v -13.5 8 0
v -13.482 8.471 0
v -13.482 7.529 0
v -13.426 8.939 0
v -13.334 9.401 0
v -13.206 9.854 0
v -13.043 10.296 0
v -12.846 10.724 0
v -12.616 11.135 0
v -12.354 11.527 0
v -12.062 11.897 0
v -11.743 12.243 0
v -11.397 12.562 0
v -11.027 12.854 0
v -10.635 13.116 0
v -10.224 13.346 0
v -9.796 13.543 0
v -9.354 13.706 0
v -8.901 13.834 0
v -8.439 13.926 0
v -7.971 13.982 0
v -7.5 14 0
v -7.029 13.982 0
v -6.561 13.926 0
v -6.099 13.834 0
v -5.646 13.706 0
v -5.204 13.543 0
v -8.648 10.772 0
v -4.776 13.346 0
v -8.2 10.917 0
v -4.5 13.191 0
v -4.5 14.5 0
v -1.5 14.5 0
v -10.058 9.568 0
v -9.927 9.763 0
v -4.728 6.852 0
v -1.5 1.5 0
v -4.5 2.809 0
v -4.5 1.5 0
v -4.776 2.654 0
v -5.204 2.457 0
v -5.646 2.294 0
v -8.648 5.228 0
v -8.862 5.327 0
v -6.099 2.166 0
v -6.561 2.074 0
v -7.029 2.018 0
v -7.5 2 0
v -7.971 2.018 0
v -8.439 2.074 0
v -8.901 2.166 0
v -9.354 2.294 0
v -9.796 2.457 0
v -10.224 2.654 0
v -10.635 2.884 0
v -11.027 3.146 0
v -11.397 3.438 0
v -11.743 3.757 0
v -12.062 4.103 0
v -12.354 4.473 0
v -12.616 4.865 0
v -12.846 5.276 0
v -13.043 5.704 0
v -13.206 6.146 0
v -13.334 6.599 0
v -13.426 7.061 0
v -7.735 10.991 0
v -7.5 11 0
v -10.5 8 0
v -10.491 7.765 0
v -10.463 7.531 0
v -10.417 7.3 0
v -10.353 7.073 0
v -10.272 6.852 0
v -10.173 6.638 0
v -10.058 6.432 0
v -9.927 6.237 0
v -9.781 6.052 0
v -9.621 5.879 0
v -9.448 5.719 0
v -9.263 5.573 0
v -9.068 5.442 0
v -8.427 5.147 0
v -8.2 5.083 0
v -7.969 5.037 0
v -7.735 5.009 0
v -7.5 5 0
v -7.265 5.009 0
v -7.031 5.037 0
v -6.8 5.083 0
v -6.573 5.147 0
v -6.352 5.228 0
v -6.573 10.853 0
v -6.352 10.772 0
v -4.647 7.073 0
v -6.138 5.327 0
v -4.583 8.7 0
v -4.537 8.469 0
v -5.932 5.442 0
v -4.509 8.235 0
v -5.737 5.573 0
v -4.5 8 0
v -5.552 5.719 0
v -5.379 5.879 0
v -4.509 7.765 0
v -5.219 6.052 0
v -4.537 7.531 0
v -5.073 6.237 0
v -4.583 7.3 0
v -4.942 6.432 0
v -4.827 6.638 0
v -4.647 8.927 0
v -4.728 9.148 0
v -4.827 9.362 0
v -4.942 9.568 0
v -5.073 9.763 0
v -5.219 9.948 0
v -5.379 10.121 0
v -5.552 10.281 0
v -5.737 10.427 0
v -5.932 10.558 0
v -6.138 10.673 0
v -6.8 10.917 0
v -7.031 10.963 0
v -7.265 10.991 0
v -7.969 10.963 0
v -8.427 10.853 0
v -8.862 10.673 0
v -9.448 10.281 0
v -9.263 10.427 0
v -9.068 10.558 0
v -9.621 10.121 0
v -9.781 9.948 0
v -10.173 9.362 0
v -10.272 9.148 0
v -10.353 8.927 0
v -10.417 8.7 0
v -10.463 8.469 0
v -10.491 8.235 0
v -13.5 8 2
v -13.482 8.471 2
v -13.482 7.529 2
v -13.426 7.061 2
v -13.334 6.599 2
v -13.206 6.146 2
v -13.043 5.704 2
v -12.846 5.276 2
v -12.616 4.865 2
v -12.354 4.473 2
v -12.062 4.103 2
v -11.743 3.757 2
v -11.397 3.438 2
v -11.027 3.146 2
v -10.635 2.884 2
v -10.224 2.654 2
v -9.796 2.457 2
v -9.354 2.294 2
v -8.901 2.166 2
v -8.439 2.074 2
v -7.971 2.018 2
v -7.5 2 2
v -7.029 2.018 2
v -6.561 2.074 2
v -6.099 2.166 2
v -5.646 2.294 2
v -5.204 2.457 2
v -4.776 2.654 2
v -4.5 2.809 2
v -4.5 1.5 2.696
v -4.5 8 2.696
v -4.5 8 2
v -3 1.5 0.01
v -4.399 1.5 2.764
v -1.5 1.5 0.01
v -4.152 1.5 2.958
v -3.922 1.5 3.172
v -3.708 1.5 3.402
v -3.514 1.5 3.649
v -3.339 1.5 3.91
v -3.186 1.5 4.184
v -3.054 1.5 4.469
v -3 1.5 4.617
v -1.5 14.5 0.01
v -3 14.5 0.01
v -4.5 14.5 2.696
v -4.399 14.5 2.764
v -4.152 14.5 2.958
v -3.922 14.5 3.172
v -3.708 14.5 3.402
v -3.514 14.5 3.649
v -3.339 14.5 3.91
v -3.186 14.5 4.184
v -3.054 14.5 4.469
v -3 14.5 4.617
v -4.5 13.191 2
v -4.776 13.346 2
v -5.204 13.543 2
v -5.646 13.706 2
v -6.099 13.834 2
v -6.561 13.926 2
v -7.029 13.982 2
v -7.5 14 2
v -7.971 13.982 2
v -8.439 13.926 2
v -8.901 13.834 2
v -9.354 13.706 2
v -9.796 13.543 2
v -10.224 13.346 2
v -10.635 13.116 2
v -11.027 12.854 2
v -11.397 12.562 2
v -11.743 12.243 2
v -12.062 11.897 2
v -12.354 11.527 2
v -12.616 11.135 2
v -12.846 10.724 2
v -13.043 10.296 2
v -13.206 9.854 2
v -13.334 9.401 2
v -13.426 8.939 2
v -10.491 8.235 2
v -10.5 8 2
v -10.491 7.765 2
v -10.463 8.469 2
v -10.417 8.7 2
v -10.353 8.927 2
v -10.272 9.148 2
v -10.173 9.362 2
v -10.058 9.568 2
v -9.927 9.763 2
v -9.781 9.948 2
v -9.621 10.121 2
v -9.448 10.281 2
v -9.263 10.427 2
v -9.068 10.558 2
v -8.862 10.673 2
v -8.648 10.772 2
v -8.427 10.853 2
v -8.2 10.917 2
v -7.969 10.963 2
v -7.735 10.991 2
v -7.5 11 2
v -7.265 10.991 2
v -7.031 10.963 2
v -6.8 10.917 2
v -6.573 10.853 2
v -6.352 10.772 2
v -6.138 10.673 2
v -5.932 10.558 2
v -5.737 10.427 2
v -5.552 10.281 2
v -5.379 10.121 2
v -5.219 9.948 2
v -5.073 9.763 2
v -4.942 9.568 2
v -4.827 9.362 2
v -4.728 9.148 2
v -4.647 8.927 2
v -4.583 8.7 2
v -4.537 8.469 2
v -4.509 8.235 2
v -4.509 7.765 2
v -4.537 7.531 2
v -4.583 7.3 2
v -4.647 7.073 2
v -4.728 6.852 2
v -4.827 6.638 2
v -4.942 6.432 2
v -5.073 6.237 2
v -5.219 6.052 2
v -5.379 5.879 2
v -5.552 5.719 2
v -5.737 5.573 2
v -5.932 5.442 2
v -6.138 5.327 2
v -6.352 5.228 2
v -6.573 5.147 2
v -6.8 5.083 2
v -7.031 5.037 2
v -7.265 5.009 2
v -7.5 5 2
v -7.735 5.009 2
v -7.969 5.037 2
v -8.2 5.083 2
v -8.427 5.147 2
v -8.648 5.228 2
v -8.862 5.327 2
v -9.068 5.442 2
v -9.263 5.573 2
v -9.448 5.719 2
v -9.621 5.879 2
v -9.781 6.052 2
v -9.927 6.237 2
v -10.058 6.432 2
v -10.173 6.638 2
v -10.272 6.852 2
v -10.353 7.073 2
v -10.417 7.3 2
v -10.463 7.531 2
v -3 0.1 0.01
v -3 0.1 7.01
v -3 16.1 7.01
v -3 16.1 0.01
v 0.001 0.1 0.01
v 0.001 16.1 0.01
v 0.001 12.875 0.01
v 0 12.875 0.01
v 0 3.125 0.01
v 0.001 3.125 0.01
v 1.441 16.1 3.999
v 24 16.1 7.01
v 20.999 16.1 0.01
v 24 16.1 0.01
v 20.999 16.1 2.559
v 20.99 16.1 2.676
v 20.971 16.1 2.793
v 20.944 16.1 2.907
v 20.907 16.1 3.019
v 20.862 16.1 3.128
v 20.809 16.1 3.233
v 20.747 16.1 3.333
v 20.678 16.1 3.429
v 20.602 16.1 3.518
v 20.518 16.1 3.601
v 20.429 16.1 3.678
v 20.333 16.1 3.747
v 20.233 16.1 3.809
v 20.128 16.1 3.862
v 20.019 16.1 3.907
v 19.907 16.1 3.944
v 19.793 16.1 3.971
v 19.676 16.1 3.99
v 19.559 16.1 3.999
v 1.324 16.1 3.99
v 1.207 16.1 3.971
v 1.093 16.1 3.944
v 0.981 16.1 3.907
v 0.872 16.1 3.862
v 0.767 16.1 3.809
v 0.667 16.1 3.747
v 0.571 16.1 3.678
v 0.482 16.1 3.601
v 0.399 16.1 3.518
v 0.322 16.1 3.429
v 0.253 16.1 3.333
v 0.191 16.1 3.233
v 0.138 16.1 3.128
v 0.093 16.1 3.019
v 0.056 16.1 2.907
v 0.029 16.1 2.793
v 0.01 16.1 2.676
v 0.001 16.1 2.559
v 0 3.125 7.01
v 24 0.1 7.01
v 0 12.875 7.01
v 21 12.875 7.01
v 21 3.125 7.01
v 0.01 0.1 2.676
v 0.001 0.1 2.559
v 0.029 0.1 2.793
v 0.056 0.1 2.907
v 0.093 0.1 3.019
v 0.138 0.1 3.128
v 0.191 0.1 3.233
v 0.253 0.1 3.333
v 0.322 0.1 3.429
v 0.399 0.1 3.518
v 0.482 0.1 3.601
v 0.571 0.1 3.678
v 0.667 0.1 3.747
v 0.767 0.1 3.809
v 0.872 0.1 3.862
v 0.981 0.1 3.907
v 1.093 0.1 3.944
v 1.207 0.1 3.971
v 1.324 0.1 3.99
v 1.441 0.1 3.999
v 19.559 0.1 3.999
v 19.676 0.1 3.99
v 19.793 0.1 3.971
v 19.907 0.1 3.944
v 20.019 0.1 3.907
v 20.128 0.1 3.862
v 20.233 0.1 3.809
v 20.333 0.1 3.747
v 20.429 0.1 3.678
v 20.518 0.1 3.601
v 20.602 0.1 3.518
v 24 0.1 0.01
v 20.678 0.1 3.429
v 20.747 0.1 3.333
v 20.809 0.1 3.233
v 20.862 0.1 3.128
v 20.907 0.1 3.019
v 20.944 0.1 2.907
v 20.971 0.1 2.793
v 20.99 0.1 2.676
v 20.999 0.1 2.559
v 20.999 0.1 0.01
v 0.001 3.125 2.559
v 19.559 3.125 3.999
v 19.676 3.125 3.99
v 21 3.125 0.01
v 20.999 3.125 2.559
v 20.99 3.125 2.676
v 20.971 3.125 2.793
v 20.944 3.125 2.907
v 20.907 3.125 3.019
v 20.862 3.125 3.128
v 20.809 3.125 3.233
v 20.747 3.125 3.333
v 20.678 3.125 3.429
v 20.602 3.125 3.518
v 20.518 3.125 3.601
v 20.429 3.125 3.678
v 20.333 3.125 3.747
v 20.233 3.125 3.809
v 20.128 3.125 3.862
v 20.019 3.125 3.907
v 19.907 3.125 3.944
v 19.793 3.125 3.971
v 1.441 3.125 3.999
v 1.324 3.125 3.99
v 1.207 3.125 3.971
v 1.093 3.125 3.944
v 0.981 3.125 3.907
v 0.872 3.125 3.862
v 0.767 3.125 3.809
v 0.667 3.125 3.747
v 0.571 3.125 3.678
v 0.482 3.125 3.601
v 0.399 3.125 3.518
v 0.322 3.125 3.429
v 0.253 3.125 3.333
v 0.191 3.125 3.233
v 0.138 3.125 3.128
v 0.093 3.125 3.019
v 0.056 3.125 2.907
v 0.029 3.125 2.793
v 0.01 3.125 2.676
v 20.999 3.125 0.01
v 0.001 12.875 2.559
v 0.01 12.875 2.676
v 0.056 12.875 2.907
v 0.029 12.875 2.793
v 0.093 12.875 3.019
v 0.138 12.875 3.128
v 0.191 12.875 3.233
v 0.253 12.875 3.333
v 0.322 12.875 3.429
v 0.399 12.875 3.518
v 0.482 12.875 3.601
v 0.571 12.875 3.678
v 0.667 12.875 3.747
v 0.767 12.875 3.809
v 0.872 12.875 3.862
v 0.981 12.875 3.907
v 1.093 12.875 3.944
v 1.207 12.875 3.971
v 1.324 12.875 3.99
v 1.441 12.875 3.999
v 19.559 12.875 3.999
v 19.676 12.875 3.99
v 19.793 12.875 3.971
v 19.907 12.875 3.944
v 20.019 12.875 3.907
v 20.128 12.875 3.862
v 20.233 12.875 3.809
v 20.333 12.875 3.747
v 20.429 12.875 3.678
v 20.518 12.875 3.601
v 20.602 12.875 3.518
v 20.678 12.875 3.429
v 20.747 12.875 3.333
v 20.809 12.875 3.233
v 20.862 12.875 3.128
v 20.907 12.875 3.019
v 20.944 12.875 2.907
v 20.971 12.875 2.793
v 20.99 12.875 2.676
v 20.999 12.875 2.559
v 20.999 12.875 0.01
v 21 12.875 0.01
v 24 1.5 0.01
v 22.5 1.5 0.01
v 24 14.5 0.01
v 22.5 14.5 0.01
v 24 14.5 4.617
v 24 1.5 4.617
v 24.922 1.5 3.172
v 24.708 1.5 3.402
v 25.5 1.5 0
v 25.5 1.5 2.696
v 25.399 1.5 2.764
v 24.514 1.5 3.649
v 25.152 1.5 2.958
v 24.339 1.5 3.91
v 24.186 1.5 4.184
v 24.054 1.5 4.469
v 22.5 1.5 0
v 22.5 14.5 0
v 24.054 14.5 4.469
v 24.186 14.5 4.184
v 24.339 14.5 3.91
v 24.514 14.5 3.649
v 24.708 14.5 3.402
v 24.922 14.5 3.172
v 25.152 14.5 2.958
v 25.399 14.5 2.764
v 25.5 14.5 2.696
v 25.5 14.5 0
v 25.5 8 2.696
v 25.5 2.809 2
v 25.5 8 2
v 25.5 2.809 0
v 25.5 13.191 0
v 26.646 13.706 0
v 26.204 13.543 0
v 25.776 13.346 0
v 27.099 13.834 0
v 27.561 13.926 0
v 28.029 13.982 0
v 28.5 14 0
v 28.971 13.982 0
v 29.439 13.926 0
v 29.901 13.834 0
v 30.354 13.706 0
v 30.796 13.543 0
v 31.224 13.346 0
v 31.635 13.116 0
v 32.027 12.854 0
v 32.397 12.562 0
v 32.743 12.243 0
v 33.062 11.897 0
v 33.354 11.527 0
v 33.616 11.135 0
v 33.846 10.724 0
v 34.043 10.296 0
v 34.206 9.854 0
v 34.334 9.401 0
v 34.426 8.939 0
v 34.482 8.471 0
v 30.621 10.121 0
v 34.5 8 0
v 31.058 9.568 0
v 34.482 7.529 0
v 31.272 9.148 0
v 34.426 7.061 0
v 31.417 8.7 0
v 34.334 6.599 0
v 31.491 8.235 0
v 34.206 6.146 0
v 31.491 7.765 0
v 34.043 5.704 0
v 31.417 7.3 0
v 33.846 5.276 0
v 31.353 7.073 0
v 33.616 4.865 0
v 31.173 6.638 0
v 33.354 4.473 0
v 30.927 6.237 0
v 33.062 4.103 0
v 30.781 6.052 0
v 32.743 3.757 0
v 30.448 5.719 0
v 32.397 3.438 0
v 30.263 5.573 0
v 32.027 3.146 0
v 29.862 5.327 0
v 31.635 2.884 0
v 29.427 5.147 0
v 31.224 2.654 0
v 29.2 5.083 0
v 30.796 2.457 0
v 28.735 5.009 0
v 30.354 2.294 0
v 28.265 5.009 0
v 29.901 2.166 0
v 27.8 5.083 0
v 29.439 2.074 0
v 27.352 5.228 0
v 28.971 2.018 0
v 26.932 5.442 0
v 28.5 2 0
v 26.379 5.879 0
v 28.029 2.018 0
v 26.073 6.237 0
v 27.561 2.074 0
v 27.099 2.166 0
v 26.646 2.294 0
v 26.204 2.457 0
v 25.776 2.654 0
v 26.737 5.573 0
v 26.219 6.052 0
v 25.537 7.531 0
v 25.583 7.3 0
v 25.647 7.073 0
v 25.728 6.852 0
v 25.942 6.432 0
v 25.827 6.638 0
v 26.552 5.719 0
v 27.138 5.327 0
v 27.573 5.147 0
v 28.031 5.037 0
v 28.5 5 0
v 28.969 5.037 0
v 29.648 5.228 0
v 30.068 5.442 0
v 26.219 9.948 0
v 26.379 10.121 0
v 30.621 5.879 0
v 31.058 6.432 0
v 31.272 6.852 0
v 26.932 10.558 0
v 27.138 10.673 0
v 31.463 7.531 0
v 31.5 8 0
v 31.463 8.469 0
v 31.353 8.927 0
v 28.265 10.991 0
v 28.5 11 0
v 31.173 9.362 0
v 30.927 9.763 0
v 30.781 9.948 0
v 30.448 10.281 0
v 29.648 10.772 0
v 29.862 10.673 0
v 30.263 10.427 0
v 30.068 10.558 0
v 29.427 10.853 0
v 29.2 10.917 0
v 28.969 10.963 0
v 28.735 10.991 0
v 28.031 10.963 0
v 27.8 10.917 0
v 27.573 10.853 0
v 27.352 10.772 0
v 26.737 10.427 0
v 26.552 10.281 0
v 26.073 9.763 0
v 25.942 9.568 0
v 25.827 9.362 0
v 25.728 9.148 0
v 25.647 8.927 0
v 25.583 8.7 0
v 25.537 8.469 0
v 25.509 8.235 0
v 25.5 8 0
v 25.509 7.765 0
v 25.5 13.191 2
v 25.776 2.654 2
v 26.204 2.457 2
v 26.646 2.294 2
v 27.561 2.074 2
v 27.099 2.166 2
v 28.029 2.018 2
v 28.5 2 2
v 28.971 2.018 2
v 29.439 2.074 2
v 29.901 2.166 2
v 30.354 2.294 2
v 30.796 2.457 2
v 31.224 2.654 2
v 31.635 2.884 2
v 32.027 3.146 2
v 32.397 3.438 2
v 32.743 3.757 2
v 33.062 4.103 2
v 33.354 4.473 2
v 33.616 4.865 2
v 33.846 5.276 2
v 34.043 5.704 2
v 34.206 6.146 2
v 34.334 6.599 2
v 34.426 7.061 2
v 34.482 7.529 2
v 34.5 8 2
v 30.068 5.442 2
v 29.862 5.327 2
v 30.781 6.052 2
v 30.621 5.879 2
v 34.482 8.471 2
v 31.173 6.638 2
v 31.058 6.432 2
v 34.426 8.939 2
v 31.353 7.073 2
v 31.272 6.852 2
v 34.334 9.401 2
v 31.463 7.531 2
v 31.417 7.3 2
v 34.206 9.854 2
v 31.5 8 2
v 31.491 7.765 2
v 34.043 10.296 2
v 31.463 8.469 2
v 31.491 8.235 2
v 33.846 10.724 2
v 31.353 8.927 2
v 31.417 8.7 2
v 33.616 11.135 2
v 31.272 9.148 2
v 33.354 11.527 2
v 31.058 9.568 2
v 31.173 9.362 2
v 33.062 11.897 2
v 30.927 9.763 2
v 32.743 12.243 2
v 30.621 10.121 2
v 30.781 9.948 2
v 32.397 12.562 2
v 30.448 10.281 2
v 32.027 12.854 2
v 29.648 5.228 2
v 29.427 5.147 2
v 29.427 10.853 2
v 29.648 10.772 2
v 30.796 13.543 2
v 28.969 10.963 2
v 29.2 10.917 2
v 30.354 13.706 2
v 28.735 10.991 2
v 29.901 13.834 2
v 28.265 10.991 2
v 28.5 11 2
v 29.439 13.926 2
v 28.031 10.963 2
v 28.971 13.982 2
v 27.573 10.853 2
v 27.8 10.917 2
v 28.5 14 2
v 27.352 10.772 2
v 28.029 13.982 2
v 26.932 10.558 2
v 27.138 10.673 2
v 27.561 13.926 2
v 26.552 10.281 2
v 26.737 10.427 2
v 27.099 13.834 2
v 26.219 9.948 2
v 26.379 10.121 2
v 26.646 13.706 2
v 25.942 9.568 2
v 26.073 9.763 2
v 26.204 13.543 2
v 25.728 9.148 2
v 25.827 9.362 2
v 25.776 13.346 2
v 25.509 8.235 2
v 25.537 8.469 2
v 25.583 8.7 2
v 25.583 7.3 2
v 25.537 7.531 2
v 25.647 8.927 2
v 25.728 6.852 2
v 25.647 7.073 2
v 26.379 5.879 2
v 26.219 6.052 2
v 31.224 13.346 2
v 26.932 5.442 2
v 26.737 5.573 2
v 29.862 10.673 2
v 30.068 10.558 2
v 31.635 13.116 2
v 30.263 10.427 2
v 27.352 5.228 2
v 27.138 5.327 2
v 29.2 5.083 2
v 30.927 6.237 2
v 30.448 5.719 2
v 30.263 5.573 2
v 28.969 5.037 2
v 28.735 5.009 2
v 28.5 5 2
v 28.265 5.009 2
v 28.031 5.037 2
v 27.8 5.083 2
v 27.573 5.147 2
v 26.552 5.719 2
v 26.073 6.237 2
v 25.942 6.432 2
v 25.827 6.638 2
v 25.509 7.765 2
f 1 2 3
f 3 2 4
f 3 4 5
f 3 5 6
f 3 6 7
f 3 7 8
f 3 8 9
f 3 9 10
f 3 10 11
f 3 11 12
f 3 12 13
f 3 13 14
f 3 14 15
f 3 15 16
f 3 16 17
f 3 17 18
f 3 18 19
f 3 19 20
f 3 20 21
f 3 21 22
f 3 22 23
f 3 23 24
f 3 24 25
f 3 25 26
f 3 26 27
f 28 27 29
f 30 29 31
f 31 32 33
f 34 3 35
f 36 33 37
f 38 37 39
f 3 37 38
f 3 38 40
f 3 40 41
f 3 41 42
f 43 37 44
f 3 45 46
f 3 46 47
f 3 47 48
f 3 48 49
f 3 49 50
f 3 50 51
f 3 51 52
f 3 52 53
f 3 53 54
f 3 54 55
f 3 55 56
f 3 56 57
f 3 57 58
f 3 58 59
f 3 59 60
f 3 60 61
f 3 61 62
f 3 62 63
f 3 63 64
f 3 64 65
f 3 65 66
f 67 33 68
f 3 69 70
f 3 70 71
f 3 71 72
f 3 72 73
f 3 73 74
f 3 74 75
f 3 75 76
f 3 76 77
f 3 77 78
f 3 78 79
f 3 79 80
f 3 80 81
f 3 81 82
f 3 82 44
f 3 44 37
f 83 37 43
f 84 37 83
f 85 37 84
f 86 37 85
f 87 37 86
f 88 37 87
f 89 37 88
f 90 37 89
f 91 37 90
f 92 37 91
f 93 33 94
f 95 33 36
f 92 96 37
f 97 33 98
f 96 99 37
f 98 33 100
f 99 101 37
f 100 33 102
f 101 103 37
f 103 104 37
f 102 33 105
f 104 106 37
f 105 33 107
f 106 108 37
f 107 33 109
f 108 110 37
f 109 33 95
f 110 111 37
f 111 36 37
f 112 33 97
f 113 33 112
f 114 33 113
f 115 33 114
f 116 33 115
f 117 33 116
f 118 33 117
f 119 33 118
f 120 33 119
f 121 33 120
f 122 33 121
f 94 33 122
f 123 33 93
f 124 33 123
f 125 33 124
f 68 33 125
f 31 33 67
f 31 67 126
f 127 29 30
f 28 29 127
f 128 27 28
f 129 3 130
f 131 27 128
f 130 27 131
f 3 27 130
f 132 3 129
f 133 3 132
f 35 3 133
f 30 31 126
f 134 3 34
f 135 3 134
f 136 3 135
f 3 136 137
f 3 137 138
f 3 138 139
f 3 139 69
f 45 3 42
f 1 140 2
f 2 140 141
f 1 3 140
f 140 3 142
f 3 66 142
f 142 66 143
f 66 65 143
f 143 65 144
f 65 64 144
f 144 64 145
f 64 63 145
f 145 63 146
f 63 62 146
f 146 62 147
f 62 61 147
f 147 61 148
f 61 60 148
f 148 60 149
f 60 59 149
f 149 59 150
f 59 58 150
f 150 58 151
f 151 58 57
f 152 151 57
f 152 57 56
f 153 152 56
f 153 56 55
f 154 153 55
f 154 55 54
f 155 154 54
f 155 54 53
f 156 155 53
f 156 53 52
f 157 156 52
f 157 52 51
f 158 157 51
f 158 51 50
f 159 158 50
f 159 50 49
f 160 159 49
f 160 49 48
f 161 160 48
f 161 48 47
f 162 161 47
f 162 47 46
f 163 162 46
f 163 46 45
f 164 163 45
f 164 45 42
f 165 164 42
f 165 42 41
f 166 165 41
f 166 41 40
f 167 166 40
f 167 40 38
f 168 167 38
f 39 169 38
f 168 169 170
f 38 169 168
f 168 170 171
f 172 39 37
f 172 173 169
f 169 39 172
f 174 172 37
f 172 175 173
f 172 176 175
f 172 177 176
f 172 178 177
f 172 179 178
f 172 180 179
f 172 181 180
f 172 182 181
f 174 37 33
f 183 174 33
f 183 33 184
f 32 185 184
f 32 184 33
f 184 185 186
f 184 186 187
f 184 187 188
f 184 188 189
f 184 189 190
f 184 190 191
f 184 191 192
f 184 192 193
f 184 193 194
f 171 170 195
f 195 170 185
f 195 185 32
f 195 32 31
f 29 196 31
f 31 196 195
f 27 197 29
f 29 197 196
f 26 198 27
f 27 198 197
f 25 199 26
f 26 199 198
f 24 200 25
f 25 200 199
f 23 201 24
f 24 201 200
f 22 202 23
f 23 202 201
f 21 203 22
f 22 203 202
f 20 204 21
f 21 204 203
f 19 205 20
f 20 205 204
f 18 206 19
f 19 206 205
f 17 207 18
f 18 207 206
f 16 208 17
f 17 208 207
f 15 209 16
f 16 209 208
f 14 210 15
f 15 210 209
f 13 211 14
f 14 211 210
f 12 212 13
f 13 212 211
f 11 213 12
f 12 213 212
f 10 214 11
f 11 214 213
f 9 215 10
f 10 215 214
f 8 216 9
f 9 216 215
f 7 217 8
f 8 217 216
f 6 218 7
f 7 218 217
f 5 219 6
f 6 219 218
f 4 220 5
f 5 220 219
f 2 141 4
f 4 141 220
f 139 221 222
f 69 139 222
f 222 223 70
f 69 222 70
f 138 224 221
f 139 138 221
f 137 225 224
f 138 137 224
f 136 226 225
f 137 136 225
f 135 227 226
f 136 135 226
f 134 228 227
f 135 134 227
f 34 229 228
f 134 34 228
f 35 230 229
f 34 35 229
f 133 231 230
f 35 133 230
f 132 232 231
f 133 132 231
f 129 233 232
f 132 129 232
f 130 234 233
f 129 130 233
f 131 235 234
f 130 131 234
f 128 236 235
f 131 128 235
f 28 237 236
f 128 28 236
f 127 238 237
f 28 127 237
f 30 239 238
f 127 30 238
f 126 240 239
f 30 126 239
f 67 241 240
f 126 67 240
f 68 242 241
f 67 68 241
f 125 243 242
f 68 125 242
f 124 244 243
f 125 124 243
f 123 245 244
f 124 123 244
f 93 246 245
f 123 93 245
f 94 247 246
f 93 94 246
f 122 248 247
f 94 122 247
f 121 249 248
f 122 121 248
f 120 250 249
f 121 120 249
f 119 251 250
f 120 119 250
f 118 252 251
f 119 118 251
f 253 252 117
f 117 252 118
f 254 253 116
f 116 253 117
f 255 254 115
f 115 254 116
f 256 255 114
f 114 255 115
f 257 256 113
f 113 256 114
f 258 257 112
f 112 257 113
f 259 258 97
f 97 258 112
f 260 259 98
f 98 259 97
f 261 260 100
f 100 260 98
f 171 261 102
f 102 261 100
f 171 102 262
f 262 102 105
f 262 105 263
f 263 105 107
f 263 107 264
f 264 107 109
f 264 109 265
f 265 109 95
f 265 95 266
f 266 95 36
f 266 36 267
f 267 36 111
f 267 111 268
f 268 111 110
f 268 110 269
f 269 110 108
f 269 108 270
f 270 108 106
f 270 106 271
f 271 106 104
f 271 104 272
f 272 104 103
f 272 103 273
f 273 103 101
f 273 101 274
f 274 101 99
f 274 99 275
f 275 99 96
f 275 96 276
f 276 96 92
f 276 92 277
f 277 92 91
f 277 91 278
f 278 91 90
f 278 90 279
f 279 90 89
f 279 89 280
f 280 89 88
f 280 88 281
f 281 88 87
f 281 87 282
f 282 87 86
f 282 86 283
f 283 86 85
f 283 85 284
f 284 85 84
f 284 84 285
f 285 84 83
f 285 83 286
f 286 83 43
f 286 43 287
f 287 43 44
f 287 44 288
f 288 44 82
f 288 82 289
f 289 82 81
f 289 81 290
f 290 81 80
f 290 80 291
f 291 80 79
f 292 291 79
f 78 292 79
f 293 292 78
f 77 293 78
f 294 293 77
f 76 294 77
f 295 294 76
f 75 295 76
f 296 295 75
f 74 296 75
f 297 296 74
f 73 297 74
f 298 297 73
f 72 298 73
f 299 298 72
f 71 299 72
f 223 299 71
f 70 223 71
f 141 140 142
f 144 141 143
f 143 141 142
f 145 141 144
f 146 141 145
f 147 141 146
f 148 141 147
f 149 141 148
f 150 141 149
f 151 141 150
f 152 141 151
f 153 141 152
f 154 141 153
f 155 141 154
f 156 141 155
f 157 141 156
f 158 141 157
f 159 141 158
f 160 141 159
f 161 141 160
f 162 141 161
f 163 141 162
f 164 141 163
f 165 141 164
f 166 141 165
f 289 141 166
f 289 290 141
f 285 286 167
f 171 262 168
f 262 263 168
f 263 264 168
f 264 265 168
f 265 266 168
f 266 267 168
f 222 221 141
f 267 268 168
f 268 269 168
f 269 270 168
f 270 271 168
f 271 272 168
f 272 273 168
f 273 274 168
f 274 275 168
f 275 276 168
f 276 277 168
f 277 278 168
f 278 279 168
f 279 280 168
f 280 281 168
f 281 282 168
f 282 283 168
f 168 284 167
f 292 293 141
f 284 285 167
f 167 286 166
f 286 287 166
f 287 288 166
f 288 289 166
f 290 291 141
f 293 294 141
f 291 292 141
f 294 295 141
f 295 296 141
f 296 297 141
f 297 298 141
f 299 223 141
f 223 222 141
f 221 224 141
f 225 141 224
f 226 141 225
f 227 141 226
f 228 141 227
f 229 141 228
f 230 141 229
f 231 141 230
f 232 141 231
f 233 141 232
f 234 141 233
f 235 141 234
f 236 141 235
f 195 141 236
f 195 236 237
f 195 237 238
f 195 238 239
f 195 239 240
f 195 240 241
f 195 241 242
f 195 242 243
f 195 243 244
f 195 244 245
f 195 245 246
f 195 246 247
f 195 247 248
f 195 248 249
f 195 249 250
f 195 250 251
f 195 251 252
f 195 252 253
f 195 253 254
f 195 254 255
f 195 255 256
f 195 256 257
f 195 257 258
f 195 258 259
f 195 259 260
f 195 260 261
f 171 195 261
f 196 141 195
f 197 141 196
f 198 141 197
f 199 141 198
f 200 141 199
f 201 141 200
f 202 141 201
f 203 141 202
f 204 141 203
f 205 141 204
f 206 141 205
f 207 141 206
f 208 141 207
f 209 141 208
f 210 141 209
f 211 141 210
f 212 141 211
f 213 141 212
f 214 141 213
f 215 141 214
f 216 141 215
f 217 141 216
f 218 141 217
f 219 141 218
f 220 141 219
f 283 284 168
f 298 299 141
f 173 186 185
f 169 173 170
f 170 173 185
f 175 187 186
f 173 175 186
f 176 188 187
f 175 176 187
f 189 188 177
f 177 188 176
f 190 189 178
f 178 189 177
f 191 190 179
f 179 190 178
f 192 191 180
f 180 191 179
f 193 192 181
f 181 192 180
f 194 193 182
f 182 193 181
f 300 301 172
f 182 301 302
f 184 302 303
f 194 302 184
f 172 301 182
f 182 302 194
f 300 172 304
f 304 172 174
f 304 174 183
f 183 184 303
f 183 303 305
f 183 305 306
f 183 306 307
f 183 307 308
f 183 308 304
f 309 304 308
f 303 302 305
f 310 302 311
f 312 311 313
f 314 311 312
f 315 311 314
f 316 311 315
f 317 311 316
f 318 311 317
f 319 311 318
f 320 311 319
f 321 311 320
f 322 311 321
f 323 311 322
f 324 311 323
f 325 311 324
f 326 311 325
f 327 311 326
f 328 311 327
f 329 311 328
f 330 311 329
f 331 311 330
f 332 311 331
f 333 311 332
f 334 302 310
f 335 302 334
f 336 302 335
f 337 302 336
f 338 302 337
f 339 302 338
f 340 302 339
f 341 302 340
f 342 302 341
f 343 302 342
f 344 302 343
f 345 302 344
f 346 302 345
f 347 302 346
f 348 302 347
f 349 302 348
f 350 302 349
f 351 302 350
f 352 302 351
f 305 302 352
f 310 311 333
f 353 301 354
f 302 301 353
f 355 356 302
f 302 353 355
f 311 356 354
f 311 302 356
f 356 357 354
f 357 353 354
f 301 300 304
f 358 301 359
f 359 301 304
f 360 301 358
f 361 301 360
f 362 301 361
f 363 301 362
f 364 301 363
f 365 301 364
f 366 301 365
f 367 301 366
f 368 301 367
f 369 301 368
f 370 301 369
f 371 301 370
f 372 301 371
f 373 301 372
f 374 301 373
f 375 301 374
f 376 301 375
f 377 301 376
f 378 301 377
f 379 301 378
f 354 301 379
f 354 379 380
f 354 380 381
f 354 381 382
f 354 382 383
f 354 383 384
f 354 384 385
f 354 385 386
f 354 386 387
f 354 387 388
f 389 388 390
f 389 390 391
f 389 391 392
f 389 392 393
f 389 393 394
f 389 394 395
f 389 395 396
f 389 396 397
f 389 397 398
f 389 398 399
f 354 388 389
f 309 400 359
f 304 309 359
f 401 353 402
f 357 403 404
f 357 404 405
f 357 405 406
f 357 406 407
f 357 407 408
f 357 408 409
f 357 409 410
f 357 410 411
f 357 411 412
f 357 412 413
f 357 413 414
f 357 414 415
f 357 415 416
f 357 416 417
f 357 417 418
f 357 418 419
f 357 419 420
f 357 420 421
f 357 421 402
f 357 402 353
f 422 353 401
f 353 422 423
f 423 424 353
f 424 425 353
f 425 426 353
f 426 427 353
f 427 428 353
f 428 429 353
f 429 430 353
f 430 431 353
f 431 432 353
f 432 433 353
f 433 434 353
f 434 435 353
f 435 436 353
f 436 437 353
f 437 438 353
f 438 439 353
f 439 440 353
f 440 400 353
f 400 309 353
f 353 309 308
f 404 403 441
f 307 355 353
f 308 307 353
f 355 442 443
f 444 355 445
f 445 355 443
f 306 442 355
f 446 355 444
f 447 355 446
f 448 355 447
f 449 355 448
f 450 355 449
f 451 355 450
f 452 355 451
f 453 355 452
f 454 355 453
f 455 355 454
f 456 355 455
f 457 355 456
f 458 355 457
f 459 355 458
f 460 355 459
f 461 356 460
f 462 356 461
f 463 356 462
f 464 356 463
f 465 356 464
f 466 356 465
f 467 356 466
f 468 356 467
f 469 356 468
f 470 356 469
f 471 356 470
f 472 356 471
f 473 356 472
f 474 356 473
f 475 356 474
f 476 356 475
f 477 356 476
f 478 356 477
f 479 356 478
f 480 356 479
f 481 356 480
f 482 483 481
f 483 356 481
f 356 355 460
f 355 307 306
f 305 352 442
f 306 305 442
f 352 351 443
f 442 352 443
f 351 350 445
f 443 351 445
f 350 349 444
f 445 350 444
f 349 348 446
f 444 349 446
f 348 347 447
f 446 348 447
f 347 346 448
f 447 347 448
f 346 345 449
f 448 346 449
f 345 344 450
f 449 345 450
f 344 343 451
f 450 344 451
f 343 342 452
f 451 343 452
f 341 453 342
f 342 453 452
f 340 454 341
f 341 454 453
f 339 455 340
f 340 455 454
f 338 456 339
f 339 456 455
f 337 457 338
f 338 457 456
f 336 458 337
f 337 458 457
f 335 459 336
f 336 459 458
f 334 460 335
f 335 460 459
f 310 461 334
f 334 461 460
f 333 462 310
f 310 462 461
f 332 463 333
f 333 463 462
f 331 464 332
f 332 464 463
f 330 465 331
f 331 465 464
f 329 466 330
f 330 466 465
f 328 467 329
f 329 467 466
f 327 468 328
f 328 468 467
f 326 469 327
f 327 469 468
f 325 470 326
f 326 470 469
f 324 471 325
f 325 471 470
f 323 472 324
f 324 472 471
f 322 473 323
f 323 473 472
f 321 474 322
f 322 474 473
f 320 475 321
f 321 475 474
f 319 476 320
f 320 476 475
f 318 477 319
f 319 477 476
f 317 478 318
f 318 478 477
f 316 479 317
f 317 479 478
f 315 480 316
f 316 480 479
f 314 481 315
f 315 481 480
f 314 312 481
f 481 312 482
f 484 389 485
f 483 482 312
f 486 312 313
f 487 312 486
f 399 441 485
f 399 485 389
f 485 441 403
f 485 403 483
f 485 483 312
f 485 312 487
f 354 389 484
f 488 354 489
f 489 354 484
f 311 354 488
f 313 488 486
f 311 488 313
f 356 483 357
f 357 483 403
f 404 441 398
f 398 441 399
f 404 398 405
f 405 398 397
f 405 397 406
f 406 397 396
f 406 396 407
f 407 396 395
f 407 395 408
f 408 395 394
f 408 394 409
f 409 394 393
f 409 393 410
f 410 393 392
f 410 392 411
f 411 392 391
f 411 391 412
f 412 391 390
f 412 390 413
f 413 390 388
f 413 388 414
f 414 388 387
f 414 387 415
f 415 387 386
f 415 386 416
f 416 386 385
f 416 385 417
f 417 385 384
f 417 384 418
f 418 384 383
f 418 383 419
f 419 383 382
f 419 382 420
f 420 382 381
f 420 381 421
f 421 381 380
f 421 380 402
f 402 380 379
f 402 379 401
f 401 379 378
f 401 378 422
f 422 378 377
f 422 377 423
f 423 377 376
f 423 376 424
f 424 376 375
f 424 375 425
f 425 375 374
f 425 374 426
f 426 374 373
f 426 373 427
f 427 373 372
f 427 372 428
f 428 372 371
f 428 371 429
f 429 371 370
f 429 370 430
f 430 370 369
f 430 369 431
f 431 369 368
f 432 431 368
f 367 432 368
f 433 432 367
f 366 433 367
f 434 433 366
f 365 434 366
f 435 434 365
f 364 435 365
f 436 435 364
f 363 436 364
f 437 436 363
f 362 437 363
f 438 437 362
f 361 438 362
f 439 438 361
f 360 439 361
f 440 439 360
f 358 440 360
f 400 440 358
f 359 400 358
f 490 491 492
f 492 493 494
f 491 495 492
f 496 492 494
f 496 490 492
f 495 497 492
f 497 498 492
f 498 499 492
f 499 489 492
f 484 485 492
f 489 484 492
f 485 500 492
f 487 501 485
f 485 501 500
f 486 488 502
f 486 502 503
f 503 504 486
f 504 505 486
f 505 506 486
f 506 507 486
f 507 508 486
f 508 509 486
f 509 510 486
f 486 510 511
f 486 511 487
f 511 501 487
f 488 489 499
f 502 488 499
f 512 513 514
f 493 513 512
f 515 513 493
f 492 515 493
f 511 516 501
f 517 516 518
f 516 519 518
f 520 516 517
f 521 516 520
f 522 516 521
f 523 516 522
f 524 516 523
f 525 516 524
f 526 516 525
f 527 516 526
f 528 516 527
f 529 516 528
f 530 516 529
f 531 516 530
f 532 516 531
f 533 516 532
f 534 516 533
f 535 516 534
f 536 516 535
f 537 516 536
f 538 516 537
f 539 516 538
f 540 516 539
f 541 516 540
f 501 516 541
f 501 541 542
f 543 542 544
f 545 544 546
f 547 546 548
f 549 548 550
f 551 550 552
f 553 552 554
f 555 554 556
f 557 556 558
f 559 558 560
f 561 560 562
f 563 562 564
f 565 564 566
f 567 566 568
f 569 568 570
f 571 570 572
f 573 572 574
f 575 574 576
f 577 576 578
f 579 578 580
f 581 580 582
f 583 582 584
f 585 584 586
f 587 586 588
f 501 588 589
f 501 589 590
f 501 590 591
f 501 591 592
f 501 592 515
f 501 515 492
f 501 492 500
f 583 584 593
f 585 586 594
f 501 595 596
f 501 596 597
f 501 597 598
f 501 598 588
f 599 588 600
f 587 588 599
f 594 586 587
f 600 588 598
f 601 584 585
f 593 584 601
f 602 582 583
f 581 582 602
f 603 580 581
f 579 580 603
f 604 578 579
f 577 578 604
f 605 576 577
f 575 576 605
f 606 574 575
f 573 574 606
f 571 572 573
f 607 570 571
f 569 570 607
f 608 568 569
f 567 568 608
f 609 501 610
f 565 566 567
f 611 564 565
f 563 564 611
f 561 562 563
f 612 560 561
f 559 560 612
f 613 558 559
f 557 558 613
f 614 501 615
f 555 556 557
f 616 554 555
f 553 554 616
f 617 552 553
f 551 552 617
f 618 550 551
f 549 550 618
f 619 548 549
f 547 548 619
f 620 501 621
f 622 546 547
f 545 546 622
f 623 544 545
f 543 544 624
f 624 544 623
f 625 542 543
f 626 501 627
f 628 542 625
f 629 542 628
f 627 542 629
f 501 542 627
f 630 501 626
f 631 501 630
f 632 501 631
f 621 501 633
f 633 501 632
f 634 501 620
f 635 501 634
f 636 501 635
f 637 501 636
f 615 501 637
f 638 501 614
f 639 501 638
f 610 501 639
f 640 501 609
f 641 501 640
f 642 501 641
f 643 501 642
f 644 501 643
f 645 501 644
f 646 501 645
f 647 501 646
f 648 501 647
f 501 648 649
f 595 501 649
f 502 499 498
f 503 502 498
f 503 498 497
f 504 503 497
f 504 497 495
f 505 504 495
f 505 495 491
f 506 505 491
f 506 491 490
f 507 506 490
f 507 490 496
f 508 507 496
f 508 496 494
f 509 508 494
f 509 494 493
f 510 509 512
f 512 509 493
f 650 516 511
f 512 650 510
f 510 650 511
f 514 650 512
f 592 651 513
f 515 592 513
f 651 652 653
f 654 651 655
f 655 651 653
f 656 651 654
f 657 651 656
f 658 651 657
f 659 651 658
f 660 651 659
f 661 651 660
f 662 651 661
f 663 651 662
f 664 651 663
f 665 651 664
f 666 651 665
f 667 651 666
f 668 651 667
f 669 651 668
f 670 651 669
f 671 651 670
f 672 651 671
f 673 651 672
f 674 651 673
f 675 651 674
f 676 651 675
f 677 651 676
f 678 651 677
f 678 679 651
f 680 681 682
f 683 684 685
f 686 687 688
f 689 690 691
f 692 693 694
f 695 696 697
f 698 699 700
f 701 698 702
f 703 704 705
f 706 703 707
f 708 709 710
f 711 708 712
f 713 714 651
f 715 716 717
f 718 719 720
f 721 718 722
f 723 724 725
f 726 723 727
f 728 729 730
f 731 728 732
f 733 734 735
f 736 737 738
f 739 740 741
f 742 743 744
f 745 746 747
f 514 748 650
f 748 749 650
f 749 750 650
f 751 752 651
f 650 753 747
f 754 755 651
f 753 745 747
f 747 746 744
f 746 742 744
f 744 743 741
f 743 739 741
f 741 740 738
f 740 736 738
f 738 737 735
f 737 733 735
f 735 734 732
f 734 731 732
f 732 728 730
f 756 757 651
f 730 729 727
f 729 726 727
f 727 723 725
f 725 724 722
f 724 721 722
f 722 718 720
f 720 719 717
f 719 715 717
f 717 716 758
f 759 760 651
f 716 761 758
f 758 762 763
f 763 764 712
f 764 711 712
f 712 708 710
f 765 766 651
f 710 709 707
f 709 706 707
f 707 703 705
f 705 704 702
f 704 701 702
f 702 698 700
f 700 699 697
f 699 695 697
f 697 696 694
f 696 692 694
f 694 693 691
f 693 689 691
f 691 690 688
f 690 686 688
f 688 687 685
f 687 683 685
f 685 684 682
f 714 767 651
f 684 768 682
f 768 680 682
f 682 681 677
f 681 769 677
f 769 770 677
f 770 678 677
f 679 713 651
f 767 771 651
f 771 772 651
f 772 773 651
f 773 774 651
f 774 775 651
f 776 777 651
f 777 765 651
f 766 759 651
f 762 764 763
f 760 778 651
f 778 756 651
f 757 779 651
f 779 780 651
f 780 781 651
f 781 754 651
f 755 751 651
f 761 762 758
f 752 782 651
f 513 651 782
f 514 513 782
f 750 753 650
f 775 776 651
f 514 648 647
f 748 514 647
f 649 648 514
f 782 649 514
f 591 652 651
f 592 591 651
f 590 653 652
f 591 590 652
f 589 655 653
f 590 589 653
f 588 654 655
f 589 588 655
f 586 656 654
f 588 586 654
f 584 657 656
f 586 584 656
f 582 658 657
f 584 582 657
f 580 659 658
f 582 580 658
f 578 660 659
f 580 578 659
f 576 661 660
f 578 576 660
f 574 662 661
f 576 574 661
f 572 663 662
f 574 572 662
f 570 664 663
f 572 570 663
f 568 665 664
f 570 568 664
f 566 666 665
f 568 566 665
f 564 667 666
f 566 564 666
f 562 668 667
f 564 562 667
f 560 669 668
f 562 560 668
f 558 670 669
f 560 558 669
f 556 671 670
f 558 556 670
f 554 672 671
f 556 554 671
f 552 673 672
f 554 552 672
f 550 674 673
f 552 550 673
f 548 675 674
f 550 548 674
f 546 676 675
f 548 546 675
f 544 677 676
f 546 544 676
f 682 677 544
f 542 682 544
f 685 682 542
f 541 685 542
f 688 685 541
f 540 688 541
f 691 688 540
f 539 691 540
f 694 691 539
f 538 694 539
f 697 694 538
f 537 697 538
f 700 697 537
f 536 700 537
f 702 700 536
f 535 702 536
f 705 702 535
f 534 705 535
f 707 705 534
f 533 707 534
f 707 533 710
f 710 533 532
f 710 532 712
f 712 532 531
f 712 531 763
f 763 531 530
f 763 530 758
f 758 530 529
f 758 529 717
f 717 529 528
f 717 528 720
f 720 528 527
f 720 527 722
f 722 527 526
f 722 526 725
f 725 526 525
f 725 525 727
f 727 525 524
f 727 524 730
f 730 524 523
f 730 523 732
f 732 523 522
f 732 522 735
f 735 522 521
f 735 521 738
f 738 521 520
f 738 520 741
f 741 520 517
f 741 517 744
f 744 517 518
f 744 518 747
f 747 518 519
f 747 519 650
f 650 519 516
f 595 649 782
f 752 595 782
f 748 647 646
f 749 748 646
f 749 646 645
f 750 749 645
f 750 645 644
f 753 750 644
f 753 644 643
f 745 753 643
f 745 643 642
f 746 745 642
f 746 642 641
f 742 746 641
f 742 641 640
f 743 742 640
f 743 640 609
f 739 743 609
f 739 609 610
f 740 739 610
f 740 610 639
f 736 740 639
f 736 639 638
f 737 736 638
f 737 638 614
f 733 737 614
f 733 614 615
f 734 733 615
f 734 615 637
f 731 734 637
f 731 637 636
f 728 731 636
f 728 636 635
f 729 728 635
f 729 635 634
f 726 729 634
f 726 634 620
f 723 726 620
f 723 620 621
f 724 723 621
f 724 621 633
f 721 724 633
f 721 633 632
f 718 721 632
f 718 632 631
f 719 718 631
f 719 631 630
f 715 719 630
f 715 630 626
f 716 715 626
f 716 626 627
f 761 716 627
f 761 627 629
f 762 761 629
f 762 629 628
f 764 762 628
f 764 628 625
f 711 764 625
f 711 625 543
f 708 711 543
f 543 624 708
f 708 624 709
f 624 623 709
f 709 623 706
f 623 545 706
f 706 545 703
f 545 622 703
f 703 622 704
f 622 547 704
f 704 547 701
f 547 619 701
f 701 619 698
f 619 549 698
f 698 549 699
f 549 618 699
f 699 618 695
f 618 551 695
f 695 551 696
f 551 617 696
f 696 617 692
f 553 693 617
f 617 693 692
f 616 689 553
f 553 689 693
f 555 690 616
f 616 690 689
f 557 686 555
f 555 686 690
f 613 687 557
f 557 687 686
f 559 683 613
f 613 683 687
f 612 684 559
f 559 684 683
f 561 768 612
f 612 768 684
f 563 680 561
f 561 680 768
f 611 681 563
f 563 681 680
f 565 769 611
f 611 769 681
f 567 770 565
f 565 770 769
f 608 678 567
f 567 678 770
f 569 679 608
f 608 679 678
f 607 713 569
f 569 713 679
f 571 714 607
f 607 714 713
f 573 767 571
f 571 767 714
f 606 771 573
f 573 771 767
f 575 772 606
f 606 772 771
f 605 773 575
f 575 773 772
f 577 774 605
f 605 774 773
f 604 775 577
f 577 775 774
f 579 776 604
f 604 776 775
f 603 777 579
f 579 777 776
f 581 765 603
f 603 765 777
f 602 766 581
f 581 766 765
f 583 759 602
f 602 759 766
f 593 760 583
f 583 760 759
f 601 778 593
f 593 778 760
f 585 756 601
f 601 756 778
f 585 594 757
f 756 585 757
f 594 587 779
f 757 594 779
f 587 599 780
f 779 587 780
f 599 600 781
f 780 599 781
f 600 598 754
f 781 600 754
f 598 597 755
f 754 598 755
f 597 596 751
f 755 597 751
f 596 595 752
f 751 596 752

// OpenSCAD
// Diameter of the mounting screw
SCREW_DIAMETER = 3; // [0:100]

// Width of your LED strip in millimeters
STRIP_WIDTH = 21; // [0:100]

// Thickness of yoru LED strip in millimeters
STRIP_THICKNESS = 4; // [1:100]

// How wide (along the strip) you want your clip to be in millimeters
CLIP_LENGTH = 13; // [1:100]

// How durable you'd like this to be in millimeters
THICKNESS=3; //[1:100]

// How many screw mounts to have
SCREW_MOUNT_COUNT = 2; //[0, 1, 2]

// Use support bridge?
USE_SUPPORT_BRIDGE = 0; //[0, 1]

difference() {
	translate([-THICKNESS, 0.1, 0.01]) cube(size=[STRIP_WIDTH+THICKNESS*2, CLIP_LENGTH+THICKNESS, STRIP_THICKNESS+THICKNESS]);
	difference() {
		translate([THICKNESS/2, 0, 0]) minkowski() {
			cube(size=[STRIP_WIDTH-THICKNESS, CLIP_LENGTH*2, STRIP_THICKNESS-THICKNESS/2]);
			sphere(r=THICKNESS/2, $fn=80);
		}
		if (USE_SUPPORT_BRIDGE > 0) translate([STRIP_WIDTH/2-THICKNESS/4, -CLIP_LENGTH/2, 0]) cube(size=[THICKNESS/2, CLIP_LENGTH*2, STRIP_THICKNESS+1]);
	}
	translate([0, CLIP_LENGTH/2-(CLIP_LENGTH*0.75-THICKNESS)/2, 0]) cube(size=[STRIP_WIDTH, CLIP_LENGTH*0.75, STRIP_THICKNESS*2]);
}

if (SCREW_MOUNT_COUNT > 0) {
	screwMount();
	if (SCREW_MOUNT_COUNT > 1) translate([STRIP_WIDTH, 0, 0]) mirror([1, 0, 0]) screwMount();
}


module screwMount() {
	translate([-THICKNESS*2.5, CLIP_LENGTH/2+THICKNESS/2, 0]) difference() {
		union() {
			cylinder(r=SCREW_DIAMETER+THICKNESS, h=STRIP_THICKNESS/2, $fn=80);
			difference() {
				translate([THICKNESS, -CLIP_LENGTH/2, 0]) cube(size=[THICKNESS, CLIP_LENGTH, STRIP_THICKNESS+THICKNESS]);
				translate([SCREW_DIAMETER/4, CLIP_LENGTH, THICKNESS*2]) rotate([90, 0, 0]) cylinder(r=STRIP_THICKNESS, h=CLIP_LENGTH*2, $fn=80);
			}
		}
		translate([0, 0, -0.1]) cylinder(r=SCREW_DIAMETER, h=STRIP_THICKNESS, $fn=80);
	}
}
